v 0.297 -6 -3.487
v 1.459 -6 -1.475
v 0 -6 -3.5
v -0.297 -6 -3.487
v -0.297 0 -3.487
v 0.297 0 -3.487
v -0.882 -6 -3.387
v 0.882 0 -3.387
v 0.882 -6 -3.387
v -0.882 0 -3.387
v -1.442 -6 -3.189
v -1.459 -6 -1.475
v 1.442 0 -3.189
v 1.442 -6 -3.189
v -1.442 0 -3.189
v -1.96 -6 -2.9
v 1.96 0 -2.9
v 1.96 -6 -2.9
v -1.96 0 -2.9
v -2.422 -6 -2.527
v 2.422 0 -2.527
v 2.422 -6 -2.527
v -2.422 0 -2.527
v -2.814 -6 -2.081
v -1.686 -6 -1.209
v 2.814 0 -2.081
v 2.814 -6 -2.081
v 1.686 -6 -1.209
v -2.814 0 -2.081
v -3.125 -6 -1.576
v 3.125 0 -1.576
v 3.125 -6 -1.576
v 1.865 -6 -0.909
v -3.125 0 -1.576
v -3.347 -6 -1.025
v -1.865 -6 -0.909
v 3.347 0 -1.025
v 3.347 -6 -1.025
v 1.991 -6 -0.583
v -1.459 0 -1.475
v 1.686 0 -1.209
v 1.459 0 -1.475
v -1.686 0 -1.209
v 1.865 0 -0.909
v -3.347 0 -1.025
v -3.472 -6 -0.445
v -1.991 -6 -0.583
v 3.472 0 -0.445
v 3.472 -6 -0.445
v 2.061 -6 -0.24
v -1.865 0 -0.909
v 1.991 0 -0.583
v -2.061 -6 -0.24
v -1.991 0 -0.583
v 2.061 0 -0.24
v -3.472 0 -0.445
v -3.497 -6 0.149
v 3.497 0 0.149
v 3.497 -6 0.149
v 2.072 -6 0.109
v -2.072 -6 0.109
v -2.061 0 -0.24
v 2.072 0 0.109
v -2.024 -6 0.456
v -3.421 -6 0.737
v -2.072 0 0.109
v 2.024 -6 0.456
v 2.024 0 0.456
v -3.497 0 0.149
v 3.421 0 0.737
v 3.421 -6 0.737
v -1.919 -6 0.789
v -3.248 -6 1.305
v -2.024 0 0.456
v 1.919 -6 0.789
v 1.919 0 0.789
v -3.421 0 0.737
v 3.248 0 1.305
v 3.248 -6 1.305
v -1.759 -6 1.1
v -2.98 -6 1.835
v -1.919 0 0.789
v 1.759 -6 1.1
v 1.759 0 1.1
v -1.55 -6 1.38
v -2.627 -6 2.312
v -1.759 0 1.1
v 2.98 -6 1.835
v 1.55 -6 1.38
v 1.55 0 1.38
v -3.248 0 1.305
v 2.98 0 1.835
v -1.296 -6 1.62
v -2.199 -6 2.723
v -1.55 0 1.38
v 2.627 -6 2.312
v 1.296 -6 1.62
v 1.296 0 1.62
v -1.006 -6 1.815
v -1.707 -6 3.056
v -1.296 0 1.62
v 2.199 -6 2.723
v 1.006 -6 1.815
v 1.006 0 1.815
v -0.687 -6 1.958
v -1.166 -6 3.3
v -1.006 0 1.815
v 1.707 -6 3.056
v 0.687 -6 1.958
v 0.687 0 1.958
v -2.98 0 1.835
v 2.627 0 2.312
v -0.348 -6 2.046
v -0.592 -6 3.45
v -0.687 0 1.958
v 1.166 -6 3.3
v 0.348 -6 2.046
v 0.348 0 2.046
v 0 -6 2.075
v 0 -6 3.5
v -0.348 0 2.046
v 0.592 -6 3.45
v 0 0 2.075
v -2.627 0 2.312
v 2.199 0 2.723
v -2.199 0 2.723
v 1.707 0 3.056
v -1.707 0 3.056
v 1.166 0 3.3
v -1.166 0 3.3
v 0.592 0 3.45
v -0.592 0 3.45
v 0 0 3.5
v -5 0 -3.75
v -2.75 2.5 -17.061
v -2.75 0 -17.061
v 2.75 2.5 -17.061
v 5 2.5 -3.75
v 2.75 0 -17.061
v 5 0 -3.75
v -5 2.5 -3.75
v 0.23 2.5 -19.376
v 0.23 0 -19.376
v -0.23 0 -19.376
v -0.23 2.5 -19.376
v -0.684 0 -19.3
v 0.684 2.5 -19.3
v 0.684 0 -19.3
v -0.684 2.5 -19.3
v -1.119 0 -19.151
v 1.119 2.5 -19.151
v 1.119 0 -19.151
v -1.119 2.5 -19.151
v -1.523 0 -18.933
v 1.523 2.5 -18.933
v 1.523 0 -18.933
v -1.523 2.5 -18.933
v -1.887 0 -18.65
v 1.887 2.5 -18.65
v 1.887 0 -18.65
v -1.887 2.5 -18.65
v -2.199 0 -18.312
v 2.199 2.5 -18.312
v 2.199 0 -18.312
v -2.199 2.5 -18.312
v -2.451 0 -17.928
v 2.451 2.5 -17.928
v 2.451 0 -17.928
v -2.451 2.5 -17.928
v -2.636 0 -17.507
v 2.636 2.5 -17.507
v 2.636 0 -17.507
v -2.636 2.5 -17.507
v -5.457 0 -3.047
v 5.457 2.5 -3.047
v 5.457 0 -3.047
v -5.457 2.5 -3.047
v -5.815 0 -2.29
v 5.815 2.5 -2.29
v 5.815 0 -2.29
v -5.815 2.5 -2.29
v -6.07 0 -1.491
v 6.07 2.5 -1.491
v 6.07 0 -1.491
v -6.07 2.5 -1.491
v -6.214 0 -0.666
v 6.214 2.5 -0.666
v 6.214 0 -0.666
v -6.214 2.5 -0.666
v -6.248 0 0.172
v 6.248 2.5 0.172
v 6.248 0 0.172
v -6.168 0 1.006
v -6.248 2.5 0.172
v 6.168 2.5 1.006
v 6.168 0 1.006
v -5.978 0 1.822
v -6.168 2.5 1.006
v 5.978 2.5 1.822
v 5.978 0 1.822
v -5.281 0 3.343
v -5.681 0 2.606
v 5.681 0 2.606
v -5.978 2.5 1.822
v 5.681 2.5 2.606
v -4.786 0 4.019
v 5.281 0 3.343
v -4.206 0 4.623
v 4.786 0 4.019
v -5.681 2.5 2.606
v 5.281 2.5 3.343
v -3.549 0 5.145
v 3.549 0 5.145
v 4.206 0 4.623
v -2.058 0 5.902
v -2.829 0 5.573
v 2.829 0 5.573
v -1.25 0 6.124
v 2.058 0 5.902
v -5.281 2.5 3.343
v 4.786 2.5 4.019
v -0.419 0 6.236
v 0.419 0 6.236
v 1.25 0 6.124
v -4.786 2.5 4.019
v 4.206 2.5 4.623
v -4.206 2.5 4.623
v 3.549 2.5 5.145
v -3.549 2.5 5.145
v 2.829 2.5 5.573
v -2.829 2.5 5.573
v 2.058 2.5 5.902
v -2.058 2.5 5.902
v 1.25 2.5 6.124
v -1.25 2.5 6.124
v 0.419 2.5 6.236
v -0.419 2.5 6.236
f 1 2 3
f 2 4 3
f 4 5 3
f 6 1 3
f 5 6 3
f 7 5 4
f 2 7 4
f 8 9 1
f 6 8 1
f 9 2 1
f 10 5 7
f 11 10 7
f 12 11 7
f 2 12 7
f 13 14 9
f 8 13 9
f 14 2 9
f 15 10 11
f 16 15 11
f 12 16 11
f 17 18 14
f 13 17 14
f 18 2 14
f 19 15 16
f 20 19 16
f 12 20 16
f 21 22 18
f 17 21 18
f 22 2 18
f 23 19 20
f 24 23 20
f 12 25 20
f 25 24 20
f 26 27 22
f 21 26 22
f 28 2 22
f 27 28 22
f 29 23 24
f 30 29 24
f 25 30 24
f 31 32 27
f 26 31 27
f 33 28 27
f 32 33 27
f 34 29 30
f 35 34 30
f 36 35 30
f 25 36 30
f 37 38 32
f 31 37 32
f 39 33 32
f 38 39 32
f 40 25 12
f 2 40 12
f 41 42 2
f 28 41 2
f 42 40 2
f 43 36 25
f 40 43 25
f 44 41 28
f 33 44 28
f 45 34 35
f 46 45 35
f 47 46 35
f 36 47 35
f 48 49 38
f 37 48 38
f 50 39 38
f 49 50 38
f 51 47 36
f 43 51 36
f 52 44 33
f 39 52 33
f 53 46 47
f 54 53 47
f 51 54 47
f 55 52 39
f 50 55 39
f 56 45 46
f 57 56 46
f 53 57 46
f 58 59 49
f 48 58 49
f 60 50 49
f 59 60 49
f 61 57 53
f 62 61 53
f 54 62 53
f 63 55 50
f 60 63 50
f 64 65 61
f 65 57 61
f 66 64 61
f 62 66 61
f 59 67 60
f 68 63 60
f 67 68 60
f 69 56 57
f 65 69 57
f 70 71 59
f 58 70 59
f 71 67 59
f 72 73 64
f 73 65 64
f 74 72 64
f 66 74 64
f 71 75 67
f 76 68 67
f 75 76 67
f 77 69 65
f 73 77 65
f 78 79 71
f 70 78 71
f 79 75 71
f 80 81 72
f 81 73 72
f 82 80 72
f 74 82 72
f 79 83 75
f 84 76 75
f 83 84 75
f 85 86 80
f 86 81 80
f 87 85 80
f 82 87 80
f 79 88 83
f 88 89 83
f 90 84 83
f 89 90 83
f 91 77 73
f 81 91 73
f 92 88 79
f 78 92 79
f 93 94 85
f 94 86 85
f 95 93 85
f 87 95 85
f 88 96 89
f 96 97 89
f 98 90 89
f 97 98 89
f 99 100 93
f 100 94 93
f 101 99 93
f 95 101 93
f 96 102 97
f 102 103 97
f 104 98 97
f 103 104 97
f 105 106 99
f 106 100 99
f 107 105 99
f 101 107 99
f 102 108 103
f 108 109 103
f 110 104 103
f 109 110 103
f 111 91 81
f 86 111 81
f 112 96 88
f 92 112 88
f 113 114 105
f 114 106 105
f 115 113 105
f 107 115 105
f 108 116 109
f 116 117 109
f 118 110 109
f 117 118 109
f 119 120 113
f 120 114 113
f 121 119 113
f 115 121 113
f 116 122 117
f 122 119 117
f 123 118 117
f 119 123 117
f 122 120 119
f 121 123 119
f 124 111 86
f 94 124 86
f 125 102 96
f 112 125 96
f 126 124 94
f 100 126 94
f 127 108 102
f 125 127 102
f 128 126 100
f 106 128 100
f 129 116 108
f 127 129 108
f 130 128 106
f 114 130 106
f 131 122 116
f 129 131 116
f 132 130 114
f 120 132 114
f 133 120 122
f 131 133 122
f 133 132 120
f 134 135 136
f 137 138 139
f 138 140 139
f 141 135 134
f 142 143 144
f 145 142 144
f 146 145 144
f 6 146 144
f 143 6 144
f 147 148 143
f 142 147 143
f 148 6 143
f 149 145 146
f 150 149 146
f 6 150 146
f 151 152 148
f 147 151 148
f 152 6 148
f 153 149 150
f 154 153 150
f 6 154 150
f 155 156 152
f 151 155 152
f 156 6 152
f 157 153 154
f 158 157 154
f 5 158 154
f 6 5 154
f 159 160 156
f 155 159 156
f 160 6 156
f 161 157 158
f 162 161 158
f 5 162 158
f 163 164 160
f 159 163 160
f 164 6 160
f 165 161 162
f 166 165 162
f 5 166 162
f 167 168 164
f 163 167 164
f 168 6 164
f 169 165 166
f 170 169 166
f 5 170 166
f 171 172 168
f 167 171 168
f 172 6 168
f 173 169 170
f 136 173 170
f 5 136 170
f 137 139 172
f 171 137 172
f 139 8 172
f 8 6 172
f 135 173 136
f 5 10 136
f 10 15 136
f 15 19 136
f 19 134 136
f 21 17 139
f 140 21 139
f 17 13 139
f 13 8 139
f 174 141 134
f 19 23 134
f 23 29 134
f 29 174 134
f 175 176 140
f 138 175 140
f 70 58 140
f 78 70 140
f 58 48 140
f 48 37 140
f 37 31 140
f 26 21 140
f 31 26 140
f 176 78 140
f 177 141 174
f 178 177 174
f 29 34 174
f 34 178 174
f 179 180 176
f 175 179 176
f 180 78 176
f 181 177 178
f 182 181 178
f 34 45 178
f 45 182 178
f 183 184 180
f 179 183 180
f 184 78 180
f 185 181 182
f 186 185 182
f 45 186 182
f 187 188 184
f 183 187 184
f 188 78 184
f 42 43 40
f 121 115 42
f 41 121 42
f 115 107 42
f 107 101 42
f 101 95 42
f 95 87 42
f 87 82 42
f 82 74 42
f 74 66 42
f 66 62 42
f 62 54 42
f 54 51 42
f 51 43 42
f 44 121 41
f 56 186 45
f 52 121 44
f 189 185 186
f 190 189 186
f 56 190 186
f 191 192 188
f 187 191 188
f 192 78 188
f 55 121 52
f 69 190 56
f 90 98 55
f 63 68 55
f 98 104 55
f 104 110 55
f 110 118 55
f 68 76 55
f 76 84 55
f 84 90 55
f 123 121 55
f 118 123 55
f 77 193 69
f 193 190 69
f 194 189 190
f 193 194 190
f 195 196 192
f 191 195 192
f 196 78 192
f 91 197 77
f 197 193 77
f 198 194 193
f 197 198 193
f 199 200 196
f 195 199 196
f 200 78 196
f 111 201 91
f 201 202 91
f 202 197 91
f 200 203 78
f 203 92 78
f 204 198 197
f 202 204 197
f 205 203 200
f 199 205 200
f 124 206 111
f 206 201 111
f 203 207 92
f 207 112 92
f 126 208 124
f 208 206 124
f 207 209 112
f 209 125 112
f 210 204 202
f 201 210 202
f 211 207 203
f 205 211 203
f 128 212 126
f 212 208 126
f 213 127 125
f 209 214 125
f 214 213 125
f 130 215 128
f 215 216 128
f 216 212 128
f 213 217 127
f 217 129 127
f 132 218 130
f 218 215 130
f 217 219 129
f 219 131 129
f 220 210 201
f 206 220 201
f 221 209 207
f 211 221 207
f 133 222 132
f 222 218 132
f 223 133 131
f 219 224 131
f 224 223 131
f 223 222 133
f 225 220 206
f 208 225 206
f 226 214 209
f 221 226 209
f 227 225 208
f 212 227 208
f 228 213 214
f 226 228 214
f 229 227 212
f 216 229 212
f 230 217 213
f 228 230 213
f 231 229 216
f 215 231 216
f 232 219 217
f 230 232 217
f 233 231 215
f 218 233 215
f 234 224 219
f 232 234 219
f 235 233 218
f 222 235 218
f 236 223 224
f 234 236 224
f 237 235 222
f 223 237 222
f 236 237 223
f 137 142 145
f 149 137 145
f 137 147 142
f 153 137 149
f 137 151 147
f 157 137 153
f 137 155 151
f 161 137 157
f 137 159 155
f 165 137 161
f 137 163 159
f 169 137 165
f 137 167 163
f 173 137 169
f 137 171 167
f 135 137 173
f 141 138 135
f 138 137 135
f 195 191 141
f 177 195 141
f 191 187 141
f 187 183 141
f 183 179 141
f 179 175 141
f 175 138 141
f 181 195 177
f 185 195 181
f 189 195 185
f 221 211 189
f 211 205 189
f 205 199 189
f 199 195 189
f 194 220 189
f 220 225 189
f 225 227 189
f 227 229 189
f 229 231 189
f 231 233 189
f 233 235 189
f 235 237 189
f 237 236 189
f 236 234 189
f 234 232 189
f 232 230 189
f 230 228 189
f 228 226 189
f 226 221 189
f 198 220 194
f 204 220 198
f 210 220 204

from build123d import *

# Parameters (mm, degrees)
SKETCH1_R           = 6.25
BOSS_EXTRUDE1_DEPTH = 2.5
SKETCH2_R           = 3.5
BOSS_EXTRUDE2_DEPTH = 6
CUT_EXTRUDE1_DEPTH  = 6


with BuildPart() as part:
    # Sketch1 → Boss-Extrude1 (new body)
    with BuildSketch(Plane(origin=(0, 0, 0), x_dir=(1, 0, 0), z_dir=(0, 1, 0))):
        with BuildLine():
            ThreePointArc((-5, 3.75), (0, 6.25), (5, 3.75))
            Line((5, 3.75), (2.75, 17.061179512))
            ThreePointArc((2.75, 17.061179512), (0, 19.385353712), (-2.75, 17.061179512))
            Line((-2.75, 17.061179512), (-5, 3.75))
        make_face()
        Circle(SKETCH1_R)
    extrude(amount=BOSS_EXTRUDE1_DEPTH)

    # Sketch2 → Boss-Extrude2 (add)
    with BuildSketch(Plane.XZ):
        with Locations(Location((0, 0, 0), (0, 0, 90))):
            Circle(SKETCH2_R)
    extrude(amount=BOSS_EXTRUDE2_DEPTH)

    # Sketch3 → Cut-Extrude1 (cut)
    with BuildSketch(Plane.XZ.offset(6)):
        with BuildLine():
            Line((-1.459451952, -1.475), (1.459451952, -1.475))
            ThreePointArc((1.459451952, -1.475), (1.91493966, -0.799143979), (2.075, 0))
            ThreePointArc((2.075, 0), (-0.799143979, 1.91493966), (-1.459451952, -1.475))
        make_face()
    extrude(amount=-CUT_EXTRUDE1_DEPTH, mode=Mode.SUBTRACT)


solid = part.part
